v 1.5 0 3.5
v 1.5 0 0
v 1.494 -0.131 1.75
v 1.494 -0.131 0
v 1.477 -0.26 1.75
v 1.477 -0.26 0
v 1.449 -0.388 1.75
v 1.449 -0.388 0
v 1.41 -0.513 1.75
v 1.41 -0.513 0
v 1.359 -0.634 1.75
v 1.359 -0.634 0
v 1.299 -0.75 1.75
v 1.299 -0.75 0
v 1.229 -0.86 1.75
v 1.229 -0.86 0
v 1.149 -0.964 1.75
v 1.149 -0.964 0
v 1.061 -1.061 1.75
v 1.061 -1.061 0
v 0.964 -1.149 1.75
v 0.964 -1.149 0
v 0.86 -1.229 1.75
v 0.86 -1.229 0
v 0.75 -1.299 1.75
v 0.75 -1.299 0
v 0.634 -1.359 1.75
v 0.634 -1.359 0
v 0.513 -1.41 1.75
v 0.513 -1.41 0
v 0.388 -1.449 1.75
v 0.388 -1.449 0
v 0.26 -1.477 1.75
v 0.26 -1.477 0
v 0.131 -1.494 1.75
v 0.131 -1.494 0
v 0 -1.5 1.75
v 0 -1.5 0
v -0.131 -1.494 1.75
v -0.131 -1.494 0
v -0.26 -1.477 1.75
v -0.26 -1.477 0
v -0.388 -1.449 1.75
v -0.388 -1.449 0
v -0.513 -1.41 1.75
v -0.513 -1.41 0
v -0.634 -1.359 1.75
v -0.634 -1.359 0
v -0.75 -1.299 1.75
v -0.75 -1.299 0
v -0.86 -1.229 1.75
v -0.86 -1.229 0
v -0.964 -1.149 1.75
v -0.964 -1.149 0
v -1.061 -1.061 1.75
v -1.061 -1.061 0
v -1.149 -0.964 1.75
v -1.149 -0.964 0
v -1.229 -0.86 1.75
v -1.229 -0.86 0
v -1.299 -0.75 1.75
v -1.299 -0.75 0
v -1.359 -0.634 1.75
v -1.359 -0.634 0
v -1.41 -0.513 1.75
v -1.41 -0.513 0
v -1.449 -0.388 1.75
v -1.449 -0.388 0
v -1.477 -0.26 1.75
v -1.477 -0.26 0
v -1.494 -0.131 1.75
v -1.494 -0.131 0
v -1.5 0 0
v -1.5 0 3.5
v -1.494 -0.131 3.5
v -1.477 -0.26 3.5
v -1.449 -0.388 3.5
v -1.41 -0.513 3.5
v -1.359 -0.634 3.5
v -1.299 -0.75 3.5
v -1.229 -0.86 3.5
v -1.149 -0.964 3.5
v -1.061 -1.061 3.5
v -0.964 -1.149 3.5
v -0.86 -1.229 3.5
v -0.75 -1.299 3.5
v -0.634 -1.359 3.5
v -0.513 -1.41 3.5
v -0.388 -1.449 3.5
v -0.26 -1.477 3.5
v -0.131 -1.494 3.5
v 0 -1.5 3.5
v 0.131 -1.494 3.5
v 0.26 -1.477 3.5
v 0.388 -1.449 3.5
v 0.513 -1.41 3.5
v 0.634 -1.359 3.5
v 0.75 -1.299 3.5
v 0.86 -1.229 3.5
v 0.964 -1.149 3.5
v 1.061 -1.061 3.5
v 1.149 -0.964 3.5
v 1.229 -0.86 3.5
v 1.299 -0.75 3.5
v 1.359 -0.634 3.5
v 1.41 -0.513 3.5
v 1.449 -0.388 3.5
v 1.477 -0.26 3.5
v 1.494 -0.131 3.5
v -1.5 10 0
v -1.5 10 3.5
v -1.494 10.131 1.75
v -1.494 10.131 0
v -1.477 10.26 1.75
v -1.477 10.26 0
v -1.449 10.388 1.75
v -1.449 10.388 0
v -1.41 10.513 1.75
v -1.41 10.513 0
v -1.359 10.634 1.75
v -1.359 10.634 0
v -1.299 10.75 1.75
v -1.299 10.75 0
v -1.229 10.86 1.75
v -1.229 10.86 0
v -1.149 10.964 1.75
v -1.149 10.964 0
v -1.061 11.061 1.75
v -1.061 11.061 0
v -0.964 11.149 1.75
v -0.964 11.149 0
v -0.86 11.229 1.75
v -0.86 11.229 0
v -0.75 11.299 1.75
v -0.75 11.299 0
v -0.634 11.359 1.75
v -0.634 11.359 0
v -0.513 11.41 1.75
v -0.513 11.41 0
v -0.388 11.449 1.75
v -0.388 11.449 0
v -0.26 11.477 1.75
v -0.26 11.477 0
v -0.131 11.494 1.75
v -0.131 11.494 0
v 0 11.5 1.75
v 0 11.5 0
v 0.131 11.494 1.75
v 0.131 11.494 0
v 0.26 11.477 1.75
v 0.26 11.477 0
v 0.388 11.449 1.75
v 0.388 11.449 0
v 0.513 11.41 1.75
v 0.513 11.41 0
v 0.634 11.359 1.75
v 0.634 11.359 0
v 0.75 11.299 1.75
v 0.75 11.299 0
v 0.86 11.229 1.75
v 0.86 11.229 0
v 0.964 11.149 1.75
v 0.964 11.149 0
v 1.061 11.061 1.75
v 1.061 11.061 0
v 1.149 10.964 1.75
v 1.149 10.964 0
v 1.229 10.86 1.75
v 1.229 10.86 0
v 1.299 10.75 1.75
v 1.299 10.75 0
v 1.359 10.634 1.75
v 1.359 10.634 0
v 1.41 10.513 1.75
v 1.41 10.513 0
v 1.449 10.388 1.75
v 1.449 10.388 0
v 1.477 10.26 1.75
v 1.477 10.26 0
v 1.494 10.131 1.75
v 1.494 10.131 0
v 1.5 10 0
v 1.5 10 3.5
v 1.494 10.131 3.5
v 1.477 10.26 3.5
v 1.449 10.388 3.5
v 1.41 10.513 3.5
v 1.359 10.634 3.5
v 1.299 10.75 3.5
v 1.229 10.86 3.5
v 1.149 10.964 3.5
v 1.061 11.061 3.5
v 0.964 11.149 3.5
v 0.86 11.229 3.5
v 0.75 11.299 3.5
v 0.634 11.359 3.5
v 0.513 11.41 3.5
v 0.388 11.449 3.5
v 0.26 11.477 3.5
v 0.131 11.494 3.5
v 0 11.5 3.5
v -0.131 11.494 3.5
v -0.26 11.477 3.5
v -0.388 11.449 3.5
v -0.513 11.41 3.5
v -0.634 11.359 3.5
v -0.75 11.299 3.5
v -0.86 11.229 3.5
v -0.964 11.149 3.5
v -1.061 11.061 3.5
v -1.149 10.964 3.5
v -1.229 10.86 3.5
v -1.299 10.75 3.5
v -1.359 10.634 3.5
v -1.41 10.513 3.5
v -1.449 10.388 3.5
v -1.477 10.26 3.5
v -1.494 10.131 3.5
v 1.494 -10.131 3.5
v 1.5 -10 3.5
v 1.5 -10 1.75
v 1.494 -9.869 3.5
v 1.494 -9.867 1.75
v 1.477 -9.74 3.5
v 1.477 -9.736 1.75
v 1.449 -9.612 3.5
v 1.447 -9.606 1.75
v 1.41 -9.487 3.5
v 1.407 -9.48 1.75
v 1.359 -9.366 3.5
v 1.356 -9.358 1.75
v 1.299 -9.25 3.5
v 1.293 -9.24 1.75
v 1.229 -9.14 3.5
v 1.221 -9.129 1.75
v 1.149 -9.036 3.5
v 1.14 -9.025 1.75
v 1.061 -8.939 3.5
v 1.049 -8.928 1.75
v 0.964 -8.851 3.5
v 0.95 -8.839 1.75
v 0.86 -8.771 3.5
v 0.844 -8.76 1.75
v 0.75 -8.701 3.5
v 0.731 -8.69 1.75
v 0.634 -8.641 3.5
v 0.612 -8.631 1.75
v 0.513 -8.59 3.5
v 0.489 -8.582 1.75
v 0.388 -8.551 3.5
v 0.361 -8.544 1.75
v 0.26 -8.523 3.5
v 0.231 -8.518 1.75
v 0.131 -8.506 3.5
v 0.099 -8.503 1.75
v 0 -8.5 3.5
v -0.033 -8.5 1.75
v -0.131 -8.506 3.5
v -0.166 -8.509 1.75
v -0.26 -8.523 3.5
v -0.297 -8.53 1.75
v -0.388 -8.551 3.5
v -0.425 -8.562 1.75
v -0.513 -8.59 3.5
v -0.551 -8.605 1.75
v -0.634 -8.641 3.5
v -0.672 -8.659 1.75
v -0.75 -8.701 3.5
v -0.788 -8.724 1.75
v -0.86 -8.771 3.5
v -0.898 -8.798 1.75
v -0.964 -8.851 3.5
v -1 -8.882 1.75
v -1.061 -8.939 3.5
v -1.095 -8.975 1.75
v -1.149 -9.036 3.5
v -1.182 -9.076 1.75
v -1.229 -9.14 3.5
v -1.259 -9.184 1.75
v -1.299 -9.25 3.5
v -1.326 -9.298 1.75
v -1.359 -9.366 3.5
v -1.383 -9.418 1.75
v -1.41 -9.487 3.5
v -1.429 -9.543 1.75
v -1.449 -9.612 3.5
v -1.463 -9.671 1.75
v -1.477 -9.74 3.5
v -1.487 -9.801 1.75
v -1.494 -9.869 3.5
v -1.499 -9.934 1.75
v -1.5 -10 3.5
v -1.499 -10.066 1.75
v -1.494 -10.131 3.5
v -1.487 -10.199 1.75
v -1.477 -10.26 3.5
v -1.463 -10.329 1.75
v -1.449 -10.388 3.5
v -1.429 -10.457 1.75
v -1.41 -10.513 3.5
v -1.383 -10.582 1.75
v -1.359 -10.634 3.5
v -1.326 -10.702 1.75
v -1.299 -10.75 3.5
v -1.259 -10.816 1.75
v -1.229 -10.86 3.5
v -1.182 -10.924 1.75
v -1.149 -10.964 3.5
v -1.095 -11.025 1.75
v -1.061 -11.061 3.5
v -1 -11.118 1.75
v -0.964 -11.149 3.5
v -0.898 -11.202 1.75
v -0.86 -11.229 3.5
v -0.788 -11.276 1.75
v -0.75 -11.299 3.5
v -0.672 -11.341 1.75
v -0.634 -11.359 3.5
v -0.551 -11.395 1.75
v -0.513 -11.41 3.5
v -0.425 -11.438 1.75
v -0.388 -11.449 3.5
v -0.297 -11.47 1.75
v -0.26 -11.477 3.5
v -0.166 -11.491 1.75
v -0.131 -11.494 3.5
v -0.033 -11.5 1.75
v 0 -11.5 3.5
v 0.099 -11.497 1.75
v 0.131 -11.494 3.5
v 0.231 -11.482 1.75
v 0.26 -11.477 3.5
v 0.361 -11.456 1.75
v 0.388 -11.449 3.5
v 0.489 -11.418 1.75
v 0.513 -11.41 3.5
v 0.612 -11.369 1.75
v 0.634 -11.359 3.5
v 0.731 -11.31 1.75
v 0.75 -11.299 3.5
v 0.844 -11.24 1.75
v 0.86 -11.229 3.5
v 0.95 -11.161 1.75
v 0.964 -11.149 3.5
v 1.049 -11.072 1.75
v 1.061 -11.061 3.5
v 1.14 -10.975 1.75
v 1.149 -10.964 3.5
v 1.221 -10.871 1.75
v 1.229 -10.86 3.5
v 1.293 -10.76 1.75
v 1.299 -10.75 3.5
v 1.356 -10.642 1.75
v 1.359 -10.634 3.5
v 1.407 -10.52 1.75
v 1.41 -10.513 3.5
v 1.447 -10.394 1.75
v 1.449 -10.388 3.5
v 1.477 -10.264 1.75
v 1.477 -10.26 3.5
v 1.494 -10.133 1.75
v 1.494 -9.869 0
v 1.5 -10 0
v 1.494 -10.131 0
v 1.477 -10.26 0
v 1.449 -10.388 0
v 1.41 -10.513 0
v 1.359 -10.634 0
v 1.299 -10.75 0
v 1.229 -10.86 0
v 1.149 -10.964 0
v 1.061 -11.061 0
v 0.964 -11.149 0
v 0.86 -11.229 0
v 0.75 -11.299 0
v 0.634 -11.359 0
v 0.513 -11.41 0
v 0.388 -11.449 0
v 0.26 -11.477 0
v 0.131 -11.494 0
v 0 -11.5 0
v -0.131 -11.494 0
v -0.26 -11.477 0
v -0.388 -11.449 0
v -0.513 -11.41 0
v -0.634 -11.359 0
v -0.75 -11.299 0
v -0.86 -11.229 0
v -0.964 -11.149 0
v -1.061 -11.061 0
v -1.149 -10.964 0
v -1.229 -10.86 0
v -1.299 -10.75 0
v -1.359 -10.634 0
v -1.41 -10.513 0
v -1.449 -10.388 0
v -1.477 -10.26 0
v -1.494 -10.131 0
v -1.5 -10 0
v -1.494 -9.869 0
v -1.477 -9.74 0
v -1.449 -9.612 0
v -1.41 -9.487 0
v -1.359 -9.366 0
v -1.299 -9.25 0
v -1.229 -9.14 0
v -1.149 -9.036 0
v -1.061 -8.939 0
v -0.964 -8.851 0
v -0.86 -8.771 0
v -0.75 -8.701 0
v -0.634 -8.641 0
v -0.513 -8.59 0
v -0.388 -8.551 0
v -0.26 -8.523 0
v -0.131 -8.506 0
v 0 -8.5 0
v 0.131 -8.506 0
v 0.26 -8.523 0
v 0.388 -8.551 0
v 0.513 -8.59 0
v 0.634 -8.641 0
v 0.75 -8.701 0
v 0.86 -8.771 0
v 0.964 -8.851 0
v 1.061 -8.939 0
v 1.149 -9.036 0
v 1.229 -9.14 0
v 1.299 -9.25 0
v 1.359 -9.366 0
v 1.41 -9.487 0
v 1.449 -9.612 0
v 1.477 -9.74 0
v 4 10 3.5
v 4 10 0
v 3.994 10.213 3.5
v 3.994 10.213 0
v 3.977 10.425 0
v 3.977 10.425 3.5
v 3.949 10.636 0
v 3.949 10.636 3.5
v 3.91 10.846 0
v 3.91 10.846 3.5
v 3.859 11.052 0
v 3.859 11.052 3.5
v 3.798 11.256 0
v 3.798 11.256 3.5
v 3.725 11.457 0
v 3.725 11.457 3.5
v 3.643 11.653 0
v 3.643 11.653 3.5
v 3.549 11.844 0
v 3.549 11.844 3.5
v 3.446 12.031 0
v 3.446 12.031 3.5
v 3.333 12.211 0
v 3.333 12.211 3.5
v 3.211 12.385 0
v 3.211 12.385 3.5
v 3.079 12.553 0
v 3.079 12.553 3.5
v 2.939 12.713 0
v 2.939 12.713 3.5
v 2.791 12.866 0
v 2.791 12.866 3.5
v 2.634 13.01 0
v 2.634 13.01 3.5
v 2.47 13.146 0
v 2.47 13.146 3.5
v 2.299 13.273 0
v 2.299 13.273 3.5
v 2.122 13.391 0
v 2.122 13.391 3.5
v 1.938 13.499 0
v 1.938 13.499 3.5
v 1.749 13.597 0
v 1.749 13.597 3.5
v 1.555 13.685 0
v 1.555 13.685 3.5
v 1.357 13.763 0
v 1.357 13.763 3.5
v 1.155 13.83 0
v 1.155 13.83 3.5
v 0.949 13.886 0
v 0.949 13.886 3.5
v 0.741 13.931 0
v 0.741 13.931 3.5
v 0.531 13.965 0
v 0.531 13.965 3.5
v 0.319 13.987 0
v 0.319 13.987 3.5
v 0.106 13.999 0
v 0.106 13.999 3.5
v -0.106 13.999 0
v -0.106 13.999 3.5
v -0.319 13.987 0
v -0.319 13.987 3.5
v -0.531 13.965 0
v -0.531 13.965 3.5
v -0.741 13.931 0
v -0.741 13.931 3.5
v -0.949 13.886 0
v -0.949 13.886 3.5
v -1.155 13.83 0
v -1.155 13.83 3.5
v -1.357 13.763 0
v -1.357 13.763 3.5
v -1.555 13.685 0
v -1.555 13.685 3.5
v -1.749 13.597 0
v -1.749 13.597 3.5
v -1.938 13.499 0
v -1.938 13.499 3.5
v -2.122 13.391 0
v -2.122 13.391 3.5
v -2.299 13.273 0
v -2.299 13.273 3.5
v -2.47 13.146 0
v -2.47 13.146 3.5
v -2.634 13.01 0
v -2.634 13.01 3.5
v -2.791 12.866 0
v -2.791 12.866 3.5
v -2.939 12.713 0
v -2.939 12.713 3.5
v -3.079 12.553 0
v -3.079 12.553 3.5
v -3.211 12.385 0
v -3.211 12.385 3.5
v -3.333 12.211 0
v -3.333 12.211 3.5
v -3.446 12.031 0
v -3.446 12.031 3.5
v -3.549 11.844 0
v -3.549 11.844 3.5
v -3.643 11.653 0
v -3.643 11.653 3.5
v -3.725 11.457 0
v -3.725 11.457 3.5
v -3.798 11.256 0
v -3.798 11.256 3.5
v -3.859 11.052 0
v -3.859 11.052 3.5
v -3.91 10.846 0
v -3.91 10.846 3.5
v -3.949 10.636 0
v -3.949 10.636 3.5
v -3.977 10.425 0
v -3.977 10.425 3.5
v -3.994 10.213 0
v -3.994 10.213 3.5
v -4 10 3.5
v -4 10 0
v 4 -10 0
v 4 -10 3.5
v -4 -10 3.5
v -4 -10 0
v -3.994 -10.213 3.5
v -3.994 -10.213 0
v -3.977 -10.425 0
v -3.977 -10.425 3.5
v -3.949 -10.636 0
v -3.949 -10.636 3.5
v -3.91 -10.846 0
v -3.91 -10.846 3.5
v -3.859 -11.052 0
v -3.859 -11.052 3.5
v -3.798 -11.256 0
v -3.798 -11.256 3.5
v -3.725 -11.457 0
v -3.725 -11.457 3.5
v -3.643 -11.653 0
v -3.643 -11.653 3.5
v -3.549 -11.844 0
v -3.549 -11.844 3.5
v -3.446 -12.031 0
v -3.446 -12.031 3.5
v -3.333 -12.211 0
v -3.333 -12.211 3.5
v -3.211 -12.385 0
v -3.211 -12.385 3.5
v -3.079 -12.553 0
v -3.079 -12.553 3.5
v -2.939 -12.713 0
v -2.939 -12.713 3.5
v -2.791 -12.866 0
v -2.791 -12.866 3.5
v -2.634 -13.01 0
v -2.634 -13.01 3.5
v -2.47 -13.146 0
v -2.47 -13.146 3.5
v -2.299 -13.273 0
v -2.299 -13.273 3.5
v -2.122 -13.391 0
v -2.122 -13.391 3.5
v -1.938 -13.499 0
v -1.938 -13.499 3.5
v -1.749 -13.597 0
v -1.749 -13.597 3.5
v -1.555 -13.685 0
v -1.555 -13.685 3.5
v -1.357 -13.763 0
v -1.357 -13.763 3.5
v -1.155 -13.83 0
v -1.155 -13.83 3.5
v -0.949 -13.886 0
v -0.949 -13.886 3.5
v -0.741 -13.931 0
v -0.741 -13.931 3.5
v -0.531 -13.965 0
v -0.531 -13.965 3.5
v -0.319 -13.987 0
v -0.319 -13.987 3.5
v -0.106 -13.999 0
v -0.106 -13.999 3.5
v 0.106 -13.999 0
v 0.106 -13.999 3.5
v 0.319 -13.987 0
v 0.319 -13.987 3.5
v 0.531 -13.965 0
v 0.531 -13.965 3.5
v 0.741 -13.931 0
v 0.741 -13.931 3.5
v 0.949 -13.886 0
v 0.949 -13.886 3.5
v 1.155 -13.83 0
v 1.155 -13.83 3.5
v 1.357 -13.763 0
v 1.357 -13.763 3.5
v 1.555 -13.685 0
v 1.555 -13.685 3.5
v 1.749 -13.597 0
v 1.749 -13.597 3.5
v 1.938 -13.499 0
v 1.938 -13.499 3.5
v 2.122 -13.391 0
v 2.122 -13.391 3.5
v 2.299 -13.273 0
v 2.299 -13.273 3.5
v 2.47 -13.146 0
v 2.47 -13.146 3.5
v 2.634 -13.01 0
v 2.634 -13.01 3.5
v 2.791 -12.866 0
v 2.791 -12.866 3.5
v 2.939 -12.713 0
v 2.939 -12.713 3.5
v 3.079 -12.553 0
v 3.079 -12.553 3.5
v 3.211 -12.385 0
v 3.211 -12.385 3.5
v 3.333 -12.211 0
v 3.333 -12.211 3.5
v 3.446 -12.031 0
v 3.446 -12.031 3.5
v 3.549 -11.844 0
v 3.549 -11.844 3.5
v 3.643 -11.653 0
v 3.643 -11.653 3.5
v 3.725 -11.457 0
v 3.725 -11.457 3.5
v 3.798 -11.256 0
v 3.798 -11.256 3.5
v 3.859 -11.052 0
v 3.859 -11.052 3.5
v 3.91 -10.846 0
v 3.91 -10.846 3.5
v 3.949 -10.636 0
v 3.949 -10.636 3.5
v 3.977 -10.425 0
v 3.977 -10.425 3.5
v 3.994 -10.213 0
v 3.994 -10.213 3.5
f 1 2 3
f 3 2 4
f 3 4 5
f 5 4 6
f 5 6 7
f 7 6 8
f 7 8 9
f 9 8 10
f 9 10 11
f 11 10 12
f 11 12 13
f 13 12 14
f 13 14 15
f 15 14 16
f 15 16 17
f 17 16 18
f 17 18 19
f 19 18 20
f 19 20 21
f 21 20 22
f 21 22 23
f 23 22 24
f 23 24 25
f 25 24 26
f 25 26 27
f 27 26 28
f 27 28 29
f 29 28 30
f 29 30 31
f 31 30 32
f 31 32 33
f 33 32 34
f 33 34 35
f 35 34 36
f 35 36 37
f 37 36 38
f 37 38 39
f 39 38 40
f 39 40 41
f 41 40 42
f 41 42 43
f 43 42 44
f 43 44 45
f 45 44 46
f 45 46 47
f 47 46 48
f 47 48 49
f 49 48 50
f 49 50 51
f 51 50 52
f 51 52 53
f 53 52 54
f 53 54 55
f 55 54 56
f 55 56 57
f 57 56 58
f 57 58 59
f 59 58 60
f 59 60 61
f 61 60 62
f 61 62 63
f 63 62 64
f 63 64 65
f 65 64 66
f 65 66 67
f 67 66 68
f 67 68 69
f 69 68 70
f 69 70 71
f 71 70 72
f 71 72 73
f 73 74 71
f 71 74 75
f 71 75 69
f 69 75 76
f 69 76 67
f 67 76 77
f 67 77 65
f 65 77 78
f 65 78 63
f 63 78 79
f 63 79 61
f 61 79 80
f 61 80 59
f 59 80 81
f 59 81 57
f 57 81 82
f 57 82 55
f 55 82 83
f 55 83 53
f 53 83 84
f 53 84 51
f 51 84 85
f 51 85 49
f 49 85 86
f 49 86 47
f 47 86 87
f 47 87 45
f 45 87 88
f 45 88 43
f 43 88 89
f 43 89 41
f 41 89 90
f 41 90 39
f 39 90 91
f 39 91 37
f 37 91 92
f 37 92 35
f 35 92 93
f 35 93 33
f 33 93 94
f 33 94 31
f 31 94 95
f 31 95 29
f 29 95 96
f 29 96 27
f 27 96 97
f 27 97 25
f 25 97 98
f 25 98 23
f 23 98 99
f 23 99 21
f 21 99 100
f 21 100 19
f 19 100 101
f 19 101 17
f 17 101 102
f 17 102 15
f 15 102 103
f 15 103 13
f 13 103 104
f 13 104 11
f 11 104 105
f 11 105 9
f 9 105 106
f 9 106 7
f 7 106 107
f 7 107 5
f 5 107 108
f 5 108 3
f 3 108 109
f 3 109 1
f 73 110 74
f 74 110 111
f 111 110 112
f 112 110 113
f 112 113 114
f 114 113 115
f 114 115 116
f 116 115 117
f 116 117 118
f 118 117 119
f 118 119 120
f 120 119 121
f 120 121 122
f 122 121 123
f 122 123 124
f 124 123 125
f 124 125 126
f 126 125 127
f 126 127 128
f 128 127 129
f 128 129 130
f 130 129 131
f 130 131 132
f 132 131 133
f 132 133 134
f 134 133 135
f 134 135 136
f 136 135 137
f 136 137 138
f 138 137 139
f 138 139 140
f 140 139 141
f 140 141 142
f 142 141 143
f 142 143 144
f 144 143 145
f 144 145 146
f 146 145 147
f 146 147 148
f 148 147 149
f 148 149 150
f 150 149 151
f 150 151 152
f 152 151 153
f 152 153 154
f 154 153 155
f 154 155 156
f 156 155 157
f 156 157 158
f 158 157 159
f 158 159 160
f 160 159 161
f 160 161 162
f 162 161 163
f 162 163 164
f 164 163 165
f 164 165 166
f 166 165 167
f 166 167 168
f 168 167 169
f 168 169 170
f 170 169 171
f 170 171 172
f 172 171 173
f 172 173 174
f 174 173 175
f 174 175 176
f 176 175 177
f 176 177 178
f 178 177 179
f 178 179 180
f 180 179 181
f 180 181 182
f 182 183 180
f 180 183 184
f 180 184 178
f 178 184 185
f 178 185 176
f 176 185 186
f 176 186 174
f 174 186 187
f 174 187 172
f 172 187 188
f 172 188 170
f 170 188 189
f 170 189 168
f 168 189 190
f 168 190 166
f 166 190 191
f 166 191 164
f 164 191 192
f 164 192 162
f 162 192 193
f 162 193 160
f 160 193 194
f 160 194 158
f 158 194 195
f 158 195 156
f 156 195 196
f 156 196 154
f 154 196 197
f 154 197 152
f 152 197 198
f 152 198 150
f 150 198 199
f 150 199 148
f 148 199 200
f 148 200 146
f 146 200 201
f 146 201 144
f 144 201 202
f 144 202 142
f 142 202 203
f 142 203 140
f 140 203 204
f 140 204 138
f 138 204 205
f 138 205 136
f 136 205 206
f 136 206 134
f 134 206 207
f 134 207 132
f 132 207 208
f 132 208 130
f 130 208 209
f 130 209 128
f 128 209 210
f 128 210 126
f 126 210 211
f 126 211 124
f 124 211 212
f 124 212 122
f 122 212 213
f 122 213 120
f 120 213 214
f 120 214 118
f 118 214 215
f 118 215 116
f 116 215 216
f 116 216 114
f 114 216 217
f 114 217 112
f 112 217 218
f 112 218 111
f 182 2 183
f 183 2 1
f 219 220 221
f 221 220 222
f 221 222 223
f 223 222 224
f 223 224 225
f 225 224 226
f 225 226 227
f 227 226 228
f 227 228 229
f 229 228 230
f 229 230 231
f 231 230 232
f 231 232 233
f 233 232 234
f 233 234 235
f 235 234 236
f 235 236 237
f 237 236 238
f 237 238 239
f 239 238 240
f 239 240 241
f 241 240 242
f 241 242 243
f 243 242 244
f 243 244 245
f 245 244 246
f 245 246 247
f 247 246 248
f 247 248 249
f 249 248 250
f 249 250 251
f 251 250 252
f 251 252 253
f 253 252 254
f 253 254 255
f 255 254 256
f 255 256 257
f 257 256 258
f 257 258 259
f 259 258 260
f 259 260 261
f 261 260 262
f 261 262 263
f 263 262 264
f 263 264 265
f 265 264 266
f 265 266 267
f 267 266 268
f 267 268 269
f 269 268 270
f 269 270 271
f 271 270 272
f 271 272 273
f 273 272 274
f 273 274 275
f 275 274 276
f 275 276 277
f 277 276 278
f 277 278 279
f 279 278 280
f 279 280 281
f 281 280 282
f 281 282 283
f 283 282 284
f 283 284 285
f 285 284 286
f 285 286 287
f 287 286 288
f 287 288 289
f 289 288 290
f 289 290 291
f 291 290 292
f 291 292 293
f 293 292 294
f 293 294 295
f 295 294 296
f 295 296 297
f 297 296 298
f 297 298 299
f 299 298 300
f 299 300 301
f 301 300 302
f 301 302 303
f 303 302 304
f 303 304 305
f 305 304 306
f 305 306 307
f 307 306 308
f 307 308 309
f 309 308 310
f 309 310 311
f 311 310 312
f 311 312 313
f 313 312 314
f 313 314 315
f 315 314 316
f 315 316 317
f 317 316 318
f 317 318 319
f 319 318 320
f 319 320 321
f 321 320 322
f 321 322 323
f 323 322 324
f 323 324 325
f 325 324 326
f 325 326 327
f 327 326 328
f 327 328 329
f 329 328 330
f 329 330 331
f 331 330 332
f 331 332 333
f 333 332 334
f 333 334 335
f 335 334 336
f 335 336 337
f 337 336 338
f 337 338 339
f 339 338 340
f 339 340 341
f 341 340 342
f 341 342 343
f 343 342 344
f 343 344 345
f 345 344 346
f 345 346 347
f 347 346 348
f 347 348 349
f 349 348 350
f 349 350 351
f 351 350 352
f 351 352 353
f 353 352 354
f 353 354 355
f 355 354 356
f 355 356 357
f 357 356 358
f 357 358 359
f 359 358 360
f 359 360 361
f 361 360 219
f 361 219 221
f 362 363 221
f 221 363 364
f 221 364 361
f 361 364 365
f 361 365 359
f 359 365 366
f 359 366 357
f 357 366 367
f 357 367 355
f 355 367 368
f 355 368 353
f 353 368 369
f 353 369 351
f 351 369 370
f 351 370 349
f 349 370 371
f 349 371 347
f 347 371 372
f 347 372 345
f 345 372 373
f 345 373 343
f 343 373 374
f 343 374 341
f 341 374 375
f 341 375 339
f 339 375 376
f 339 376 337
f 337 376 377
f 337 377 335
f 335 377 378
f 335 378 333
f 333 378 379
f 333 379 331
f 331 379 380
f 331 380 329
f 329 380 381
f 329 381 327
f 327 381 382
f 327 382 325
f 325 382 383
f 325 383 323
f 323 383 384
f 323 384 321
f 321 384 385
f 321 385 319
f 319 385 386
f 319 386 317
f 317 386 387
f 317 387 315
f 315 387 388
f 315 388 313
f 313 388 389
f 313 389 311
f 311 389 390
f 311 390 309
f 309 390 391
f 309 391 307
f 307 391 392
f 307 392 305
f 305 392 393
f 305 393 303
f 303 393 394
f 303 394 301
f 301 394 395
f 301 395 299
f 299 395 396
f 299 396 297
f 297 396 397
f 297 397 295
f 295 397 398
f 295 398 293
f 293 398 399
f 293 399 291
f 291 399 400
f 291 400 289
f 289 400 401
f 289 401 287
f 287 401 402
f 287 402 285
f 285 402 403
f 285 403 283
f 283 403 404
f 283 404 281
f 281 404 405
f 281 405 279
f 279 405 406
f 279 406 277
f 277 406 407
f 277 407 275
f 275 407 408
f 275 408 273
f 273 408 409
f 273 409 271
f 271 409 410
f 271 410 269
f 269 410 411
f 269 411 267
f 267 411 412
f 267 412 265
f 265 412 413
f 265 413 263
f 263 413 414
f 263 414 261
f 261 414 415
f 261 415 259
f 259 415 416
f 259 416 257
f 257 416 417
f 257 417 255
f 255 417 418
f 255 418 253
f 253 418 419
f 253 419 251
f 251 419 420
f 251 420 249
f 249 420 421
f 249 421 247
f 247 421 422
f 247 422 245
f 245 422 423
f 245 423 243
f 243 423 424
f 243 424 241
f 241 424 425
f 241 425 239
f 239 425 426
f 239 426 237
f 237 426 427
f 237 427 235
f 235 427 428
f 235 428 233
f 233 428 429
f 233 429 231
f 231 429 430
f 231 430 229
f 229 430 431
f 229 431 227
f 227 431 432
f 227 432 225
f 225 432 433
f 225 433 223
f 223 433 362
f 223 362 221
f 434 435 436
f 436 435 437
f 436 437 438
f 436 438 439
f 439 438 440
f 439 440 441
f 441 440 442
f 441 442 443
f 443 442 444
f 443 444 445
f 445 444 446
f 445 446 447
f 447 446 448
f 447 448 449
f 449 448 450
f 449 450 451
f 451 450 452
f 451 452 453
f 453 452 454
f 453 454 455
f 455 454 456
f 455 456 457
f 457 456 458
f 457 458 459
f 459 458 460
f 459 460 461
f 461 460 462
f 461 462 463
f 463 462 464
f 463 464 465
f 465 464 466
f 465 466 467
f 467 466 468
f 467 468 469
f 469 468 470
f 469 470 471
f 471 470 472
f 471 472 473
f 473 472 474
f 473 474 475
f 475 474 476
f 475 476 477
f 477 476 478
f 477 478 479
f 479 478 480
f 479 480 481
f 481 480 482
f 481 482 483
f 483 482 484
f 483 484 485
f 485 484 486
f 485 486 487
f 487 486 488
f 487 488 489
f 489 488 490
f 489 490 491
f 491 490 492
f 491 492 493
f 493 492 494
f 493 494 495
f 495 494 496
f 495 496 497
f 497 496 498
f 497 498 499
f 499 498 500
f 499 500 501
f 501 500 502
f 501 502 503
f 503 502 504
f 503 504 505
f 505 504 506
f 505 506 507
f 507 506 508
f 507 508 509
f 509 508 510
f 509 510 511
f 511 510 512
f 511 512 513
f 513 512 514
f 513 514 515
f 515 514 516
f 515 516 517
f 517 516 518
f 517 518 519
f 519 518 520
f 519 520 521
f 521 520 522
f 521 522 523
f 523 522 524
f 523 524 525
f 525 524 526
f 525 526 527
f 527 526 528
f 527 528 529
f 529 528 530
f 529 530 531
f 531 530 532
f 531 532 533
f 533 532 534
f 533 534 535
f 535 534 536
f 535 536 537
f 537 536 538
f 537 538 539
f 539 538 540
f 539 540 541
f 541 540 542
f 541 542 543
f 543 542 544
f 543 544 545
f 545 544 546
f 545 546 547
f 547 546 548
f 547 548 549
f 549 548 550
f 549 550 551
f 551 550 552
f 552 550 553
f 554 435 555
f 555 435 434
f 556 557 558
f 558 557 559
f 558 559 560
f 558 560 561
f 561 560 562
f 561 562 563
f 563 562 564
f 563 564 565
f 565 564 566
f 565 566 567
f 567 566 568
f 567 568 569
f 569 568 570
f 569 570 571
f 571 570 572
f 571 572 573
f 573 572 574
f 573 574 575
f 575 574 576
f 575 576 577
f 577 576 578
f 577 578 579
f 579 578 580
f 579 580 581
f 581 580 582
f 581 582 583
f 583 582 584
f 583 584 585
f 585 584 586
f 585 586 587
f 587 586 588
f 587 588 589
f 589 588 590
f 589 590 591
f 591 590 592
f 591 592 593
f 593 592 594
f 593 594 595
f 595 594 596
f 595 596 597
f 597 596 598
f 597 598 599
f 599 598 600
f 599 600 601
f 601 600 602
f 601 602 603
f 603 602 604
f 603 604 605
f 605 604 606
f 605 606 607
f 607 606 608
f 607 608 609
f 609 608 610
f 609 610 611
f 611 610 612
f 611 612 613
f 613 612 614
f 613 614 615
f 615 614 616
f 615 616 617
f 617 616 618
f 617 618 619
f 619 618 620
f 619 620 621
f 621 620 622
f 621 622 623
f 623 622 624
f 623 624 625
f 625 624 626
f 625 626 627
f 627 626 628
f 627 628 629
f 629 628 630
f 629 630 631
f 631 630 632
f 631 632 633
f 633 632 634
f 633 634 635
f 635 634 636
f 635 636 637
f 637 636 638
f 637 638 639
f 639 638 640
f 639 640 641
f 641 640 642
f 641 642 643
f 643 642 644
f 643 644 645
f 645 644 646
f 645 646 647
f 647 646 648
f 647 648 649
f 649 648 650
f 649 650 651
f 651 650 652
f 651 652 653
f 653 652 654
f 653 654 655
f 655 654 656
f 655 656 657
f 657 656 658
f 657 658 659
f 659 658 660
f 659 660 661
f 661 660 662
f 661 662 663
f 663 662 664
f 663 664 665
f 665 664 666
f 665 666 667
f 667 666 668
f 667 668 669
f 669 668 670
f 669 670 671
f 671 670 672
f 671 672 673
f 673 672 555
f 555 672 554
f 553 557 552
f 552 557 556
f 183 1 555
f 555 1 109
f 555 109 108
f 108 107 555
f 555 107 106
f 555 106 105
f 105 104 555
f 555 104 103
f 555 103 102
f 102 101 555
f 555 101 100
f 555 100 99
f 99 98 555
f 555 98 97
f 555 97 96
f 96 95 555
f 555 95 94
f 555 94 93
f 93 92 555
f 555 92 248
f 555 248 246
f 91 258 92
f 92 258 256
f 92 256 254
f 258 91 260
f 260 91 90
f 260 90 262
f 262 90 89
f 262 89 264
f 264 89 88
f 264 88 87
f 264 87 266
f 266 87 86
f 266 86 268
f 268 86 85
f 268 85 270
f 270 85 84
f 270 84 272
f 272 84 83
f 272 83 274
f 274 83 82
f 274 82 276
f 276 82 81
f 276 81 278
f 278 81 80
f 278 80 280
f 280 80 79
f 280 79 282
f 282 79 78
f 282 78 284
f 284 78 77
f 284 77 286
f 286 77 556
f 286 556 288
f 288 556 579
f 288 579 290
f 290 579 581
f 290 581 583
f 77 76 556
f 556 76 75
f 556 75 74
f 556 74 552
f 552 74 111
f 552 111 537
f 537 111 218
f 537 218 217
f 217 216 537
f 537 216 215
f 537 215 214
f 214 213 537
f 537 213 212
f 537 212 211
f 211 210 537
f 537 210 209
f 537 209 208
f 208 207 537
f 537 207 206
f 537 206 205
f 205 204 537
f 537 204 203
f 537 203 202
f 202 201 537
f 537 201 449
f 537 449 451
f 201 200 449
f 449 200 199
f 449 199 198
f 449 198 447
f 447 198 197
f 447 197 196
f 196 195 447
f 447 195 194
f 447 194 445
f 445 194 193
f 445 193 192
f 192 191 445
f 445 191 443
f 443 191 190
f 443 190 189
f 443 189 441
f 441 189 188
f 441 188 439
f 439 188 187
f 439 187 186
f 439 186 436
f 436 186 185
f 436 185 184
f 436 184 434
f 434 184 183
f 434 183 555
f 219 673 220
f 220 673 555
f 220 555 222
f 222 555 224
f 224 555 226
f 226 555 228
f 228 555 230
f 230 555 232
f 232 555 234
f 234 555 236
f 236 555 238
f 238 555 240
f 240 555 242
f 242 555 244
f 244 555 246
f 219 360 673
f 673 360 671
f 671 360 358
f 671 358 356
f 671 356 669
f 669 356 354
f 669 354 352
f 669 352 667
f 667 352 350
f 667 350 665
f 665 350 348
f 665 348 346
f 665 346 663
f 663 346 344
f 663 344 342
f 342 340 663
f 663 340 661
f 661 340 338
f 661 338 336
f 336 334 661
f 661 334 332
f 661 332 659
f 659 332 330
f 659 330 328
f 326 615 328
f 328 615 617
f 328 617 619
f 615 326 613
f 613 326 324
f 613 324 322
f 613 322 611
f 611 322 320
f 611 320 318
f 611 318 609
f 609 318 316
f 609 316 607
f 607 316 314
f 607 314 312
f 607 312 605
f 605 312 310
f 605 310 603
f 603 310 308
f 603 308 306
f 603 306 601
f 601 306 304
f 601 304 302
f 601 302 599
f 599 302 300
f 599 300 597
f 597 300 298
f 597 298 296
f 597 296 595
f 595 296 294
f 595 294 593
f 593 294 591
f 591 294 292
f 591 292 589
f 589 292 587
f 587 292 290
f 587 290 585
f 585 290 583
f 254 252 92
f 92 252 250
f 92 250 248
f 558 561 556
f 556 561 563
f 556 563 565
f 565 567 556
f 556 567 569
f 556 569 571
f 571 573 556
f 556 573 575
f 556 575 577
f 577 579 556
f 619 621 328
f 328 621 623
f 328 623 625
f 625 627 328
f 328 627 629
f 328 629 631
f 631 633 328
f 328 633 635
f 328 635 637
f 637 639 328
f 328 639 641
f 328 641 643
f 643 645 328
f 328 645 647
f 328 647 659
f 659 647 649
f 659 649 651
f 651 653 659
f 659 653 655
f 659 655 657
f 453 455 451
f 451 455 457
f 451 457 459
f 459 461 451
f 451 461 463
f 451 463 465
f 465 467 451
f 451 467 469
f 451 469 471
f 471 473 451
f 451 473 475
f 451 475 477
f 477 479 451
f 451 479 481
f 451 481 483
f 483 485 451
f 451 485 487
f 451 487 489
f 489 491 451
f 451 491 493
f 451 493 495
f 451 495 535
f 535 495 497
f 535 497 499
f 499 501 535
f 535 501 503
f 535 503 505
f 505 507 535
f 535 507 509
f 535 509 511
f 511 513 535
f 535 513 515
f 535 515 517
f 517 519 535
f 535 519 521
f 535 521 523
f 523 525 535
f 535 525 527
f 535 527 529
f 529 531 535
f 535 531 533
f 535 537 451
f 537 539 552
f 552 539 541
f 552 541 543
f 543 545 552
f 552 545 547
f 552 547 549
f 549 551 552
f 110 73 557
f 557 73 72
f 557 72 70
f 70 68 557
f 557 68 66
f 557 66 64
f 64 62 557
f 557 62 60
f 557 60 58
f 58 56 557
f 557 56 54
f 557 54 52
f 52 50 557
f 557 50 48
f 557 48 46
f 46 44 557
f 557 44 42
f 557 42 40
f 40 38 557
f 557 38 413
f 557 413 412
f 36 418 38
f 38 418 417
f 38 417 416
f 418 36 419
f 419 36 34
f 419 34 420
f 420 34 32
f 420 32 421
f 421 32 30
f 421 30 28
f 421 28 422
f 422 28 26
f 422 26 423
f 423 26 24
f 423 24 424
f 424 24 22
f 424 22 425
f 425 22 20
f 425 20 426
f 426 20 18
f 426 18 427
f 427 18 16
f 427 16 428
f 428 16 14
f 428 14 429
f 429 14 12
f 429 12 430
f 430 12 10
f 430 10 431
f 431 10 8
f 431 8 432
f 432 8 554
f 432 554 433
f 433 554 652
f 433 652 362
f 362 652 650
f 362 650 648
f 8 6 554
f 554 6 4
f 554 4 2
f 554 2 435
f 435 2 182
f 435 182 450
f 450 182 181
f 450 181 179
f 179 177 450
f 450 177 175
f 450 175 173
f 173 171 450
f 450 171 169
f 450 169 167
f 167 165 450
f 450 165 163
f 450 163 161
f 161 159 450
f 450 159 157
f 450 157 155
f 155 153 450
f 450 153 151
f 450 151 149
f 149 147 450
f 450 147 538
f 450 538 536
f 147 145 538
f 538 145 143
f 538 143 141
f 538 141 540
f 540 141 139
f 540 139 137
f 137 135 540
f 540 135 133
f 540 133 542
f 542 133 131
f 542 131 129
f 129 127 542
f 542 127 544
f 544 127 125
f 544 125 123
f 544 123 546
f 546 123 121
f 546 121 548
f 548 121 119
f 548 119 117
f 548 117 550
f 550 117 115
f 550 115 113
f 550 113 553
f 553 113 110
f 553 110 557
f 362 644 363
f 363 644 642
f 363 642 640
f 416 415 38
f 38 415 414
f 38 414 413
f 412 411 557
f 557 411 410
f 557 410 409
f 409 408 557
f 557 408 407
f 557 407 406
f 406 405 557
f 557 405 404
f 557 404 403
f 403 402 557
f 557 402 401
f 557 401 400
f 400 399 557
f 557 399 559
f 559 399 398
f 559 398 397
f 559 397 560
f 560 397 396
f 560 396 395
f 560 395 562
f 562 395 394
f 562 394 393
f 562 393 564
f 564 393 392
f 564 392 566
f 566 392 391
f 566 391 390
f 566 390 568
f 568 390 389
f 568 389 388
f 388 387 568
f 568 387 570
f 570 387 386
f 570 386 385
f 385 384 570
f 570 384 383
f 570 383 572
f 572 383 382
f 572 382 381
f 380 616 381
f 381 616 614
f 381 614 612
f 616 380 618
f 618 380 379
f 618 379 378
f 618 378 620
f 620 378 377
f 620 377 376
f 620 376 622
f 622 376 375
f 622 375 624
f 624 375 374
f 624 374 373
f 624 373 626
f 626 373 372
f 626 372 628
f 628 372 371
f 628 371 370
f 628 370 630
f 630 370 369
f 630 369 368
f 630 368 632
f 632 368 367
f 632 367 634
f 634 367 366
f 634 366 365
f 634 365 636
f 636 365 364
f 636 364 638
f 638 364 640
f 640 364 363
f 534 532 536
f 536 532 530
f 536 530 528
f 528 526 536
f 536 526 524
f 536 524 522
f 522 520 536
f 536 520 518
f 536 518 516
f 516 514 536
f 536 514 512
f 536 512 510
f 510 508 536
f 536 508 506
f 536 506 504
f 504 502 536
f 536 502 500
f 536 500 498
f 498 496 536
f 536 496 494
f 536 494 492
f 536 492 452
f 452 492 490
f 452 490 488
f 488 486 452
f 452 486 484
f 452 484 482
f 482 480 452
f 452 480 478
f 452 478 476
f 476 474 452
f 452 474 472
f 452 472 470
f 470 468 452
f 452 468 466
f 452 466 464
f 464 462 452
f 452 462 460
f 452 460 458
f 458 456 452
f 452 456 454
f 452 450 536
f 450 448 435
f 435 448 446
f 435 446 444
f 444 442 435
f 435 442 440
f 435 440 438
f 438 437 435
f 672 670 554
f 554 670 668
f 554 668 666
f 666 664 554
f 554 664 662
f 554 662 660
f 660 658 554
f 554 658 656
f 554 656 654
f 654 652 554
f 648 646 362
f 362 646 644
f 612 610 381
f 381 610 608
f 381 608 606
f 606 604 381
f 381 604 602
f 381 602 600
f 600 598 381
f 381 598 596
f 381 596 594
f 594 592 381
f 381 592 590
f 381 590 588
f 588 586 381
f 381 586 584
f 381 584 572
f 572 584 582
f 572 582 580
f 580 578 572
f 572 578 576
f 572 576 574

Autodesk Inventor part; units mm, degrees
ref_plane "YZ Plane" through (0, 0, 0) normal (1, 0, 0) x (0, 1, 0)
ref_plane "XZ Plane" through (0, 0, 0) normal (0, 1, 0) x (-1, 0, 0)
ref_plane "XY Plane" through (0, 0, 0) normal (0, 0, 1) x (1, 0, 0)
sketch "Sketch1" plane through (0, 0, 0) normal (0, 0, 1) x (1, 0, 0)
  line L0 (0, 10) -> (0, -10) construction
  line L1 (-4, 10) -> (-4, -10)
  line L2 (4, -10) -> (4, 10)
  arc A0 (4, 10) -> (-4, 10) centre (0, 10) ccw
  arc A1 (-4, -10) -> (4, -10) centre (0, -10) ccw
  circle A2 centre (0, -10) radius 1.5
  line L3 (0, 0) -> (0, 10) construction
  line L4 (1.5, 0) -> (1.5, 10)
  line L5 (-1.5, 10) -> (-1.5, 0)
  arc A3 (-1.5, 0) -> (1.5, 0) centre (0, 0) ccw
  arc A4 (1.5, 10) -> (-1.5, 10) centre (0, 10) ccw
  point P0 (0, 0)
  point P1 (0, 5)
  dimension "d0" = 10
  dimension "d1" = 8
  dimension "d2" = 3
  dimension "d3" = 5
  dimension "d4" = 3
  dimension "d5" = 5
extrude "Extrusion1" add sketch "Sketch1" along normal blind 3.5
properties part number "3DP_PLA_Part_Detector_Mounting_Bracket_Short" material "ABS Plastic"
